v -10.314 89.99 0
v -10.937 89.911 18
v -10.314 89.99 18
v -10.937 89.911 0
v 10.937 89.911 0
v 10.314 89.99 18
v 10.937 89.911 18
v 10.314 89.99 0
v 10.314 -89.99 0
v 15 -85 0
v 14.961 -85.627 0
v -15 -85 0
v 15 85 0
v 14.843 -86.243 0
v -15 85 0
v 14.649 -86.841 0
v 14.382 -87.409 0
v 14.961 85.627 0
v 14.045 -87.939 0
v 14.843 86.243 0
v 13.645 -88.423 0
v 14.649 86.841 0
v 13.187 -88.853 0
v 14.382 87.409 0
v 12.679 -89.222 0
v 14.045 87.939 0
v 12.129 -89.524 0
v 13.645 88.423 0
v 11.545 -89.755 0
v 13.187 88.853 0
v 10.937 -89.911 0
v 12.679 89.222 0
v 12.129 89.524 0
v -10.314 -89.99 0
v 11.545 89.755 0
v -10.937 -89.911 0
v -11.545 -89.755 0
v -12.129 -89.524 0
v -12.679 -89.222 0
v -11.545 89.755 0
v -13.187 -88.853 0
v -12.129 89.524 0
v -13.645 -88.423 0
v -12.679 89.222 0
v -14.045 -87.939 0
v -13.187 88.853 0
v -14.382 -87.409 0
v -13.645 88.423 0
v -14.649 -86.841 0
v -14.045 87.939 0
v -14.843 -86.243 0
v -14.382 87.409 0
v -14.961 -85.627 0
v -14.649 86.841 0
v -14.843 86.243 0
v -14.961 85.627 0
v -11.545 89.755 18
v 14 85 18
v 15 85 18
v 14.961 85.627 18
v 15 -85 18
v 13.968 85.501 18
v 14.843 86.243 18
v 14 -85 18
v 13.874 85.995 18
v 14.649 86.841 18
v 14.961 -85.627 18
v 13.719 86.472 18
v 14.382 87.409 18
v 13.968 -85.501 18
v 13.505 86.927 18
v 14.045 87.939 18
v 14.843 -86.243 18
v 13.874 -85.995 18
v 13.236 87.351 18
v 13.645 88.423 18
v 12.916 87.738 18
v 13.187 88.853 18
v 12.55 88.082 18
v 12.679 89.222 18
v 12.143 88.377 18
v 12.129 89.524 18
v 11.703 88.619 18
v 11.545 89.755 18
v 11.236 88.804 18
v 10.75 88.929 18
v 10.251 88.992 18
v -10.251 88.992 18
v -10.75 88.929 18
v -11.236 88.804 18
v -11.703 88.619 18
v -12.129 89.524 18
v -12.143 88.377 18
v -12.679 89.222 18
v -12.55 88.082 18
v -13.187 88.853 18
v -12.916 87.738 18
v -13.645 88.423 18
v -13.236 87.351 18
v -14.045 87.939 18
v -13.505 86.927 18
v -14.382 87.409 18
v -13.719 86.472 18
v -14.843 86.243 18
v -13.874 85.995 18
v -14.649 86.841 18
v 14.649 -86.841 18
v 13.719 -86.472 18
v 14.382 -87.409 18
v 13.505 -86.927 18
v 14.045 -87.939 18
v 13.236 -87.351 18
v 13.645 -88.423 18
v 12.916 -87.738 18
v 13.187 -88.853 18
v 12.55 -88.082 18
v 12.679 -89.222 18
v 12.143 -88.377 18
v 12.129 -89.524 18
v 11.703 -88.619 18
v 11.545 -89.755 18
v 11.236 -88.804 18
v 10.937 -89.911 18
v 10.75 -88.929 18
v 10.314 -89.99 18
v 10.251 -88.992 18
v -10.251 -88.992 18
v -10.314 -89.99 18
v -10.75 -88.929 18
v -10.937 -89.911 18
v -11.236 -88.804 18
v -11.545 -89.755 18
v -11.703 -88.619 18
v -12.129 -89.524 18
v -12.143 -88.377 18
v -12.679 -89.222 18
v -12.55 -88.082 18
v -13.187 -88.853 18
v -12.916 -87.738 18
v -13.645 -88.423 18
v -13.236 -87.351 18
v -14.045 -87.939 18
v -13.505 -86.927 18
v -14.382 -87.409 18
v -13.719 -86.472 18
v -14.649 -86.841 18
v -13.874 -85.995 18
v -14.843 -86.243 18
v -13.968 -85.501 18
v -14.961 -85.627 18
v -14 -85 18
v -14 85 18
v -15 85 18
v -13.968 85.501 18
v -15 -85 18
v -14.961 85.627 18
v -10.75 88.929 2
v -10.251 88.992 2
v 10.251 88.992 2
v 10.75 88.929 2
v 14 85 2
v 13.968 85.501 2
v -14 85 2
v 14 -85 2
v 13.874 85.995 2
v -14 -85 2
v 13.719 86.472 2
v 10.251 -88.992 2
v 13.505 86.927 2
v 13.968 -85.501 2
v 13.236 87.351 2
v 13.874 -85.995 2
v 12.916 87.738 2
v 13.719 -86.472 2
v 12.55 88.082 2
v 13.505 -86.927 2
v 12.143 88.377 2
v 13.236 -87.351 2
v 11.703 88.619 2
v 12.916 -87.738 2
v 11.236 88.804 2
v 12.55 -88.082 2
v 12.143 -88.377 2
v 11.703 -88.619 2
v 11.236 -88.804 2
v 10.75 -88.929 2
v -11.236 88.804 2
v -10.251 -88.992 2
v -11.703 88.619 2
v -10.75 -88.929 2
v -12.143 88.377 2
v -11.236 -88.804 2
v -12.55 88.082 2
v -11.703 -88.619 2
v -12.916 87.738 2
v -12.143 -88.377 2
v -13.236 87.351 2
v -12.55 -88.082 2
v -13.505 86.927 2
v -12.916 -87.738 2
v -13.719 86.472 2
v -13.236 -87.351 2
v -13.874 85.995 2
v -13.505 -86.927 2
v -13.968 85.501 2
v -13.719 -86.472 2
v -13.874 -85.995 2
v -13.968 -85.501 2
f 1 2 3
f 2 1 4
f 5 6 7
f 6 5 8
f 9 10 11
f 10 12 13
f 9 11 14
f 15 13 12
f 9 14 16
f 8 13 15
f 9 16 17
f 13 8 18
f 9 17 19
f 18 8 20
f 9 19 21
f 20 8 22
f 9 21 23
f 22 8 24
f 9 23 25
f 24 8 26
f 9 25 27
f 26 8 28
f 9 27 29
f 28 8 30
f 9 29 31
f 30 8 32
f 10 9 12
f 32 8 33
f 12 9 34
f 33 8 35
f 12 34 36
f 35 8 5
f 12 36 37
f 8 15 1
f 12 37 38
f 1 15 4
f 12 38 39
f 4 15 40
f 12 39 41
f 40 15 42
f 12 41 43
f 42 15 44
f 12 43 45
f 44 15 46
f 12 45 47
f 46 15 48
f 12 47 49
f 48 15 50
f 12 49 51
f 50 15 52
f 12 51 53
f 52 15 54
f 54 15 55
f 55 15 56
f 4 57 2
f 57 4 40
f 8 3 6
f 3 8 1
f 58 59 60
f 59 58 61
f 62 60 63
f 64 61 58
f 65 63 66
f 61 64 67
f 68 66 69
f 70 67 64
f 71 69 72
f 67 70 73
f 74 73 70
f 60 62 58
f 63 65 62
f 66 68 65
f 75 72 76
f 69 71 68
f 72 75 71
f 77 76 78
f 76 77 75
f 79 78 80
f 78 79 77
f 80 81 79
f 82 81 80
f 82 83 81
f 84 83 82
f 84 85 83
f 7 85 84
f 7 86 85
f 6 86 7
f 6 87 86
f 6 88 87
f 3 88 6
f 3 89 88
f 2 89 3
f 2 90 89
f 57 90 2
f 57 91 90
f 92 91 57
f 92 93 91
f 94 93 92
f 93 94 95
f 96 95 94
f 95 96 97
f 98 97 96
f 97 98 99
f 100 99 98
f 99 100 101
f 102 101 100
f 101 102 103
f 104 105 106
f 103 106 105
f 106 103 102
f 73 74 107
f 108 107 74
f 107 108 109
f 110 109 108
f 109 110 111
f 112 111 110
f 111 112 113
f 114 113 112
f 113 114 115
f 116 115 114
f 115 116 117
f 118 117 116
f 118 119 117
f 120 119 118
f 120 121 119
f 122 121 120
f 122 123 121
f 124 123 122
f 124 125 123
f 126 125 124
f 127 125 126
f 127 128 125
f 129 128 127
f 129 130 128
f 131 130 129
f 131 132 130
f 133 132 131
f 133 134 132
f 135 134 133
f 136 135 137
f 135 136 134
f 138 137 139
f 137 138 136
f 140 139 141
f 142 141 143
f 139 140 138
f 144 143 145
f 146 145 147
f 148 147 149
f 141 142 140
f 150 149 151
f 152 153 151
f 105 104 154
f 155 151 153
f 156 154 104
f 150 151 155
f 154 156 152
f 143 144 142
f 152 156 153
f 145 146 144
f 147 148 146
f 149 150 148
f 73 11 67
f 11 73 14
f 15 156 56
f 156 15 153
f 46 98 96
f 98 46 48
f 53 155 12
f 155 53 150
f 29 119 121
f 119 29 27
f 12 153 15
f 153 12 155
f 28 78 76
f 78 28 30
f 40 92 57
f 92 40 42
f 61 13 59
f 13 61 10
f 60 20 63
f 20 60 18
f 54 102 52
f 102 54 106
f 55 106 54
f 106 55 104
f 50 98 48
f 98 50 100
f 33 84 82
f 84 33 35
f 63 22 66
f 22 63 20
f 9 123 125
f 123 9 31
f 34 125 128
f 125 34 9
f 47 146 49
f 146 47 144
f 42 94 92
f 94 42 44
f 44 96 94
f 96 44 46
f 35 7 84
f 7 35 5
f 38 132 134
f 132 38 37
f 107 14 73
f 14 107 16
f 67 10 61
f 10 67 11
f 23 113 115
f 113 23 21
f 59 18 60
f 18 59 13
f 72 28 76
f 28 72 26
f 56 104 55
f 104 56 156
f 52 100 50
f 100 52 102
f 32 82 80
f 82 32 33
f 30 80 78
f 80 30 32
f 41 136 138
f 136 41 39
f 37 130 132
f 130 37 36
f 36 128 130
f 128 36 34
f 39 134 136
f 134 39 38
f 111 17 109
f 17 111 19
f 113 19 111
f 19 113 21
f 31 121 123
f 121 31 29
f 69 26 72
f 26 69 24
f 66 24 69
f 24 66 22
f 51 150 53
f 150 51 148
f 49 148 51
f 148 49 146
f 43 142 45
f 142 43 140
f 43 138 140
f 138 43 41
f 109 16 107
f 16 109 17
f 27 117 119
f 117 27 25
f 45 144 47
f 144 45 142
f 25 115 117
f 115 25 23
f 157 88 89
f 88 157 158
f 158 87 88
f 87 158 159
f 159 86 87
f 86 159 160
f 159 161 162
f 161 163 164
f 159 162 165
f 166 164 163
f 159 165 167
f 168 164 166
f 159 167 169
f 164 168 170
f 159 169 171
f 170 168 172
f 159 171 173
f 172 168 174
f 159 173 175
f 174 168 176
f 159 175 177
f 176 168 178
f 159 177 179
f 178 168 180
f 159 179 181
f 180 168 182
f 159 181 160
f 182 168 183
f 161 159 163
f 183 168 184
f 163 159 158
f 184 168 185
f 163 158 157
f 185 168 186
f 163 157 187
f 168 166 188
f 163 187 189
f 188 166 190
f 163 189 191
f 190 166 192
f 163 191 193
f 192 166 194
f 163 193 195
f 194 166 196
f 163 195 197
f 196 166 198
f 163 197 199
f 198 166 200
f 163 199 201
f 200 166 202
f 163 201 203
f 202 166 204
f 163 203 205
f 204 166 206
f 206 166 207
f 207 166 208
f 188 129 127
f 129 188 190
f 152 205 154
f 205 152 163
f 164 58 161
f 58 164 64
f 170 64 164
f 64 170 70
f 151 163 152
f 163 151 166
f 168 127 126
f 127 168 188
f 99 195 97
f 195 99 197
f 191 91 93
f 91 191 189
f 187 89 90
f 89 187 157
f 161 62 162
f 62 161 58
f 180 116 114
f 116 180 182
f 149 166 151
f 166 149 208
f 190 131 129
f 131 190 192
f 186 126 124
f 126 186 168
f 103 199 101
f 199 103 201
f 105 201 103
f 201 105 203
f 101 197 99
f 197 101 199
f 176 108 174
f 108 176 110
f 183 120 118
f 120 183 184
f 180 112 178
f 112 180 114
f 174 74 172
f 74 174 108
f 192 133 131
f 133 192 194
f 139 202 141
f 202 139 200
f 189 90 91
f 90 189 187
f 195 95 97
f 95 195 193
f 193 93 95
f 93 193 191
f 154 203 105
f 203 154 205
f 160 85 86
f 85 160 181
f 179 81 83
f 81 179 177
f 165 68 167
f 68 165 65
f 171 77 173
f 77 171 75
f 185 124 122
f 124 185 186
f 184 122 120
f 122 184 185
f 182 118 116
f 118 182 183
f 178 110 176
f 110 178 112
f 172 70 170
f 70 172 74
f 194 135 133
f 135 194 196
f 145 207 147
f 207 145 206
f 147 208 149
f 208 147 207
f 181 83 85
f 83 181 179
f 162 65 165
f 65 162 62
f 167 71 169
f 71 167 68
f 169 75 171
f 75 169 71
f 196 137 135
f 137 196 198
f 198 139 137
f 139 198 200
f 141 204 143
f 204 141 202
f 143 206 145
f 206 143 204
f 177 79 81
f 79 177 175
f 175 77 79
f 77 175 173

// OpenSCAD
$fn = 50;


difference() {
	union() {
		hull() {
			translate(v = [-10.0000000000, 85.0000000000, 0]) {
				cylinder(h = 18, r = 5);
			}
			translate(v = [10.0000000000, 85.0000000000, 0]) {
				cylinder(h = 18, r = 5);
			}
			translate(v = [-10.0000000000, -85.0000000000, 0]) {
				cylinder(h = 18, r = 5);
			}
			translate(v = [10.0000000000, -85.0000000000, 0]) {
				cylinder(h = 18, r = 5);
			}
		}
	}
	union() {
		translate(v = [0, 0, 2]) {
			hull() {
				translate(v = [-10.0000000000, 85.0000000000, 0]) {
					cylinder(h = 16, r = 4);
				}
				translate(v = [10.0000000000, 85.0000000000, 0]) {
					cylinder(h = 16, r = 4);
				}
				translate(v = [-10.0000000000, -85.0000000000, 0]) {
					cylinder(h = 16, r = 4);
				}
				translate(v = [10.0000000000, -85.0000000000, 0]) {
					cylinder(h = 16, r = 4);
				}
			}
		}
	}
}
